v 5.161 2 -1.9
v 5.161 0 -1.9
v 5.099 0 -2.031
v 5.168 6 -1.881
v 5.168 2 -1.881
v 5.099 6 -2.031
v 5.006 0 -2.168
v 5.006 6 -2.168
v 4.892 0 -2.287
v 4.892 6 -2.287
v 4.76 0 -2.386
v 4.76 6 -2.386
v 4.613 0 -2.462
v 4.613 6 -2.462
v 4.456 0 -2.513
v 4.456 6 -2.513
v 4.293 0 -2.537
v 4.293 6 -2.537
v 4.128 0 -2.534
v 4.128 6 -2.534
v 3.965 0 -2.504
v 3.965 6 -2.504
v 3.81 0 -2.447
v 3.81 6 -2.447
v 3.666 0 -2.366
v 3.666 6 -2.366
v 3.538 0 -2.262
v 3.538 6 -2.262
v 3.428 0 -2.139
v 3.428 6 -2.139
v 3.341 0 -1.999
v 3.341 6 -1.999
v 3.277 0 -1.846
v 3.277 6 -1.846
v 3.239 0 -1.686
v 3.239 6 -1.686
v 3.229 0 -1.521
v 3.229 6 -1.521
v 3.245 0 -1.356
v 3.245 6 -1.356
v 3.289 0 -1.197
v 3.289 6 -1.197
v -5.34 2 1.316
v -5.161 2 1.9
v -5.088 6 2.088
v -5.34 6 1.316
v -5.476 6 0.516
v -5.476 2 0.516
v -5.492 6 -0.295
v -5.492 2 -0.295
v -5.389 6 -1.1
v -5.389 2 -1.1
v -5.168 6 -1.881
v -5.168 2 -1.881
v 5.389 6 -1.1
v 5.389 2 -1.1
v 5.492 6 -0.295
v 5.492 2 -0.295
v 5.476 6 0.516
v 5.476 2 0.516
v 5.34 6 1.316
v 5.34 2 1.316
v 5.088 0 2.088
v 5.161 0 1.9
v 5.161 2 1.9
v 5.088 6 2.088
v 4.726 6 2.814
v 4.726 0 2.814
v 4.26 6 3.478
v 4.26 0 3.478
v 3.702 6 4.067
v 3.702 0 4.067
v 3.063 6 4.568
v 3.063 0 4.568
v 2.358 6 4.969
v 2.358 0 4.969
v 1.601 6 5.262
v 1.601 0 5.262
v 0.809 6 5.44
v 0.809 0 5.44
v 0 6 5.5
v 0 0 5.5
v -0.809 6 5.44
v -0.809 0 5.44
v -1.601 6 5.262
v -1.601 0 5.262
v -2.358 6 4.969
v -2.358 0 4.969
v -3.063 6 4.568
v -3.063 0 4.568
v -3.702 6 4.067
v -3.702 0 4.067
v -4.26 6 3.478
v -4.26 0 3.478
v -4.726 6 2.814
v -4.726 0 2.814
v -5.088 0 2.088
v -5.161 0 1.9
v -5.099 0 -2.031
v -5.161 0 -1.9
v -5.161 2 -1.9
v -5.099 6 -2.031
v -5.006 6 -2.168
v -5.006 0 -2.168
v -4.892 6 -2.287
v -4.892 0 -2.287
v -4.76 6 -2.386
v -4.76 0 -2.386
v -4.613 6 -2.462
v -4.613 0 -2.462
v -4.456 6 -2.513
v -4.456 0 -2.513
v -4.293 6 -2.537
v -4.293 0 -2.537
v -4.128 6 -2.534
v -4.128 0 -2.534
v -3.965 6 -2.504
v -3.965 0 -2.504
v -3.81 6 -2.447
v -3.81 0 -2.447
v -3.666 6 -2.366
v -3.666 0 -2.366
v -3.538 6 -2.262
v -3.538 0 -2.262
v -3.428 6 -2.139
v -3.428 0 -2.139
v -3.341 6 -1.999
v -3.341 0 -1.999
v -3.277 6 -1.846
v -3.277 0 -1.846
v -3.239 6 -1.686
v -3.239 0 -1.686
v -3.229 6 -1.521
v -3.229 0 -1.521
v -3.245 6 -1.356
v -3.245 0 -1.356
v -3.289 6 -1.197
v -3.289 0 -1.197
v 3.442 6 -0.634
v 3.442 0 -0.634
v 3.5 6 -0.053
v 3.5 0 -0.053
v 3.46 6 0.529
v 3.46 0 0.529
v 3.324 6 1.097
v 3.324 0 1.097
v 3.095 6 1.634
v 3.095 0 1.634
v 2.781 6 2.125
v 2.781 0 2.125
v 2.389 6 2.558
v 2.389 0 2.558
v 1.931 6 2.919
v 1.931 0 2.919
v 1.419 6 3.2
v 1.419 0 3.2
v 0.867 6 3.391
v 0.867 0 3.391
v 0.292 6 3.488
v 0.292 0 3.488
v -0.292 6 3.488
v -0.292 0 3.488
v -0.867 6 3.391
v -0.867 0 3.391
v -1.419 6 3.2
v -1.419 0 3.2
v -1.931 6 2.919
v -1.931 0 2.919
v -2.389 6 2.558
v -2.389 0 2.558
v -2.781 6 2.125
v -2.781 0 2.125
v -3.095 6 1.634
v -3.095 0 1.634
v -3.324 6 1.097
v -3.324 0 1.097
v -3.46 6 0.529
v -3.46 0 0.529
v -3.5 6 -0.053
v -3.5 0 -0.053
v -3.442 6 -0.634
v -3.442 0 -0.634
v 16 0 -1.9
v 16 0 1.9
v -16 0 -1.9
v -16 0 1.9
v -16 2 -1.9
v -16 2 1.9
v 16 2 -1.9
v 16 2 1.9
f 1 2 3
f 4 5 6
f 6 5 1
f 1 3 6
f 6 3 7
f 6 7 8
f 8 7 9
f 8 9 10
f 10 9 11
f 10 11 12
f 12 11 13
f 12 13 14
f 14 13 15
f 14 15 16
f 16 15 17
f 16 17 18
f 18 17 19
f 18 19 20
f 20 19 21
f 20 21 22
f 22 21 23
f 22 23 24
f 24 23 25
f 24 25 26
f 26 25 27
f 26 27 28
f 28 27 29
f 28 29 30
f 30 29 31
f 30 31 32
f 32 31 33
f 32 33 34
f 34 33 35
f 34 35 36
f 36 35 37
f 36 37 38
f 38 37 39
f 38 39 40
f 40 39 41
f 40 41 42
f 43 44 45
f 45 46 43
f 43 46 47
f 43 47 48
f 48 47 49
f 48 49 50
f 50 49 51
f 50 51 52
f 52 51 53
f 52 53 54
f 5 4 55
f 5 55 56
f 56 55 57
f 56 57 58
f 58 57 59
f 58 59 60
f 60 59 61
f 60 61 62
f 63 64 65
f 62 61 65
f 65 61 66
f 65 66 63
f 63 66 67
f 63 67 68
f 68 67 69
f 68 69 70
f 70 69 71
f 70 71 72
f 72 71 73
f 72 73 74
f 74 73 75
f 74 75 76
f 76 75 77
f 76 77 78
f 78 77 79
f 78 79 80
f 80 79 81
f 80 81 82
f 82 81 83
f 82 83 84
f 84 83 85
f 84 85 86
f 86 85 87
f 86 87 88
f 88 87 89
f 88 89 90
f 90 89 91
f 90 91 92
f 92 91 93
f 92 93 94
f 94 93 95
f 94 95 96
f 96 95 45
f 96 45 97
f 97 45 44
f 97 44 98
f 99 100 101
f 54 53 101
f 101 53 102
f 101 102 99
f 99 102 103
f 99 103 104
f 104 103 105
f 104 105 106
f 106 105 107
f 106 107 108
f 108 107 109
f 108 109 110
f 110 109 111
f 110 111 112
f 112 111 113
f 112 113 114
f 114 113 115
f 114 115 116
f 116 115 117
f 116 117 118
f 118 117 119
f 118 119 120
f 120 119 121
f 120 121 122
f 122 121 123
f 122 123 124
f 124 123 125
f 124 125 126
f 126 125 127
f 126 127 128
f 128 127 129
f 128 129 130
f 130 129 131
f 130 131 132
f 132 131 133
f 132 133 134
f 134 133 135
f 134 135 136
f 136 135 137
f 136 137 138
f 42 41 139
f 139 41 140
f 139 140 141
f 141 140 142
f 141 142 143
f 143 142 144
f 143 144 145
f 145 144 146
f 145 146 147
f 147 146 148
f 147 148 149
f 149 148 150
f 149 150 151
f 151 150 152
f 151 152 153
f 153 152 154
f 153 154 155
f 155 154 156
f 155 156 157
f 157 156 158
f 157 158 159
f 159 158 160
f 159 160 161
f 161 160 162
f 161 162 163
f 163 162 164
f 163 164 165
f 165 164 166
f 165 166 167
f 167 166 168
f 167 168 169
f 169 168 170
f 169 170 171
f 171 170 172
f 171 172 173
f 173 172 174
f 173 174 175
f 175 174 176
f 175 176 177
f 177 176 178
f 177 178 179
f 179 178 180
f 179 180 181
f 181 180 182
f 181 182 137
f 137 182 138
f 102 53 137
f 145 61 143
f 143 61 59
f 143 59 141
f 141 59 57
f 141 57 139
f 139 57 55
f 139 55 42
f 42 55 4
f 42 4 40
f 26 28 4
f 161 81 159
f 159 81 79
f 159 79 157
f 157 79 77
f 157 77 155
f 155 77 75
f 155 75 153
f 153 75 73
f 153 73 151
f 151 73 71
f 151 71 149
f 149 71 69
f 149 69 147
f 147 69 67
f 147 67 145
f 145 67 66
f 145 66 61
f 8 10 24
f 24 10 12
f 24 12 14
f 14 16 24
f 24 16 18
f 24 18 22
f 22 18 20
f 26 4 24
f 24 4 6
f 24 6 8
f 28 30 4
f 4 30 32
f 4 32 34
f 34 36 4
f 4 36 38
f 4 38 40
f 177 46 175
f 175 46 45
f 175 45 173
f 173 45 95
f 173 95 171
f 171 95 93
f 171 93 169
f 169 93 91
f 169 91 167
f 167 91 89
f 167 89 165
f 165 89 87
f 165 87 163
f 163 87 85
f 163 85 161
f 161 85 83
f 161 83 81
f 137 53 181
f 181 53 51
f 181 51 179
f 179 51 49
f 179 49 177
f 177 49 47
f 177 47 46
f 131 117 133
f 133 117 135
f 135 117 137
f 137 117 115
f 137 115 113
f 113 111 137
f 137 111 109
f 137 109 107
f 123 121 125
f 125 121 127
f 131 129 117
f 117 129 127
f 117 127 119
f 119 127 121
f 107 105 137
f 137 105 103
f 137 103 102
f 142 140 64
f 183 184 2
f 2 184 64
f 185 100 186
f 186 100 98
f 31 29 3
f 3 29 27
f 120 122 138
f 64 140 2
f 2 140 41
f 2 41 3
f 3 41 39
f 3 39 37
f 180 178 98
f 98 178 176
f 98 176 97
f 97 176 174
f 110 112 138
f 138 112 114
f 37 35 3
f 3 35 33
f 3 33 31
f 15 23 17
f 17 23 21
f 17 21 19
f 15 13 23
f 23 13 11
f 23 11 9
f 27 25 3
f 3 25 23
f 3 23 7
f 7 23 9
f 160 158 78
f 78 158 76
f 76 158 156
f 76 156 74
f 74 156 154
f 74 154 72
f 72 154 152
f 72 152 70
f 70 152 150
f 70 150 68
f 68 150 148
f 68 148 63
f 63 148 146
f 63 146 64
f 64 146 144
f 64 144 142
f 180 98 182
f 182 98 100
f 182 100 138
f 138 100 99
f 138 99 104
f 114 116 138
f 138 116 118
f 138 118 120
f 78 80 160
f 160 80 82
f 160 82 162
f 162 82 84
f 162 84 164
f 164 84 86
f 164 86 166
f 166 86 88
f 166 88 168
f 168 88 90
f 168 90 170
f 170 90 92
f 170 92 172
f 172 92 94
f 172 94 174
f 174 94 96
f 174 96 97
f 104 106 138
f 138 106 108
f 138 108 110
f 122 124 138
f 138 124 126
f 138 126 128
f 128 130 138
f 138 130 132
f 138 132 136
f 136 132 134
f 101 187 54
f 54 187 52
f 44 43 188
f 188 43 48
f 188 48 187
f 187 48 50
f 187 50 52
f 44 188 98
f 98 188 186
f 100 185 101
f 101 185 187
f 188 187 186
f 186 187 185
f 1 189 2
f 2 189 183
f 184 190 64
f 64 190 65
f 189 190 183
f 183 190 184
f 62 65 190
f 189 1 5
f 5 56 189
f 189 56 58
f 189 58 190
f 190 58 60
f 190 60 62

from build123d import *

# Parameters (mm, degrees)
BOSS_EXTRUDE1_DEPTH = 6
SKETCH2_W           = 11.5
SKETCH2_H           = 3.8
SKETCH2_H_2         = 1.9
BOSS_EXTRUDE2_DEPTH = 2


with BuildPart() as part:
    # Sketch1 → Boss-Extrude1 (new body)
    with BuildSketch(Plane(origin=(0, 0, 0), x_dir=(1, 0, 0), z_dir=(0, 1, 0))):
        with BuildLine():
            Line((5.5, 0), (3.5, 0))
            ThreePointArc((3.5, 0), (-0.607768622, -3.446827136), (-3.288924173, 1.197070502))
            ThreePointArc((-3.288924173, 1.197070502), (-3.88659665, 2.478783266), (-5.168309414, 1.881110788))
            ThreePointArc((-5.168309414, 1.881110788), (-0.955064977, -5.416442642), (5.5, 0))
        make_face()
        with BuildLine():
            ThreePointArc((3.288924173, 1.197070502), (3.446827136, 0.607768622), (3.5, 0))
            Line((3.5, 0), (5.5, 0))
            ThreePointArc((5.5, 0), (5.416442642, 0.955064977), (5.168309414, 1.881110788))
            Line((5.168309414, 1.881110788), (4.228616794, 1.539090645))
            Line((4.228616794, 1.539090645), (3.288924173, 1.197070502))
        make_face()
        with BuildLine():
            ThreePointArc((5.168309414, 1.881110788), (3.88659665, 2.478783266), (3.288924173, 1.197070502))
            Line((3.288924173, 1.197070502), (4.228616794, 1.539090645))
            Line((4.228616794, 1.539090645), (5.168309414, 1.881110788))
        make_face()
    extrude(amount=BOSS_EXTRUDE1_DEPTH)

    # Sketch2 → Boss-Extrude2 (add)
    with BuildSketch(Plane(origin=(0, 0, 0), x_dir=(1, 0, 0), z_dir=(0, 1, 0))):
        with Locations((-10.25, 0)):
            Rectangle(SKETCH2_W, SKETCH2_H)
        with Locations((10.25, -0.95)):
            Rectangle(SKETCH2_W, SKETCH2_H_2)
        with Locations((10.25, 0.95)):
            Rectangle(SKETCH2_W, SKETCH2_H_2)
    extrude(amount=BOSS_EXTRUDE2_DEPTH)


solid = part.part
